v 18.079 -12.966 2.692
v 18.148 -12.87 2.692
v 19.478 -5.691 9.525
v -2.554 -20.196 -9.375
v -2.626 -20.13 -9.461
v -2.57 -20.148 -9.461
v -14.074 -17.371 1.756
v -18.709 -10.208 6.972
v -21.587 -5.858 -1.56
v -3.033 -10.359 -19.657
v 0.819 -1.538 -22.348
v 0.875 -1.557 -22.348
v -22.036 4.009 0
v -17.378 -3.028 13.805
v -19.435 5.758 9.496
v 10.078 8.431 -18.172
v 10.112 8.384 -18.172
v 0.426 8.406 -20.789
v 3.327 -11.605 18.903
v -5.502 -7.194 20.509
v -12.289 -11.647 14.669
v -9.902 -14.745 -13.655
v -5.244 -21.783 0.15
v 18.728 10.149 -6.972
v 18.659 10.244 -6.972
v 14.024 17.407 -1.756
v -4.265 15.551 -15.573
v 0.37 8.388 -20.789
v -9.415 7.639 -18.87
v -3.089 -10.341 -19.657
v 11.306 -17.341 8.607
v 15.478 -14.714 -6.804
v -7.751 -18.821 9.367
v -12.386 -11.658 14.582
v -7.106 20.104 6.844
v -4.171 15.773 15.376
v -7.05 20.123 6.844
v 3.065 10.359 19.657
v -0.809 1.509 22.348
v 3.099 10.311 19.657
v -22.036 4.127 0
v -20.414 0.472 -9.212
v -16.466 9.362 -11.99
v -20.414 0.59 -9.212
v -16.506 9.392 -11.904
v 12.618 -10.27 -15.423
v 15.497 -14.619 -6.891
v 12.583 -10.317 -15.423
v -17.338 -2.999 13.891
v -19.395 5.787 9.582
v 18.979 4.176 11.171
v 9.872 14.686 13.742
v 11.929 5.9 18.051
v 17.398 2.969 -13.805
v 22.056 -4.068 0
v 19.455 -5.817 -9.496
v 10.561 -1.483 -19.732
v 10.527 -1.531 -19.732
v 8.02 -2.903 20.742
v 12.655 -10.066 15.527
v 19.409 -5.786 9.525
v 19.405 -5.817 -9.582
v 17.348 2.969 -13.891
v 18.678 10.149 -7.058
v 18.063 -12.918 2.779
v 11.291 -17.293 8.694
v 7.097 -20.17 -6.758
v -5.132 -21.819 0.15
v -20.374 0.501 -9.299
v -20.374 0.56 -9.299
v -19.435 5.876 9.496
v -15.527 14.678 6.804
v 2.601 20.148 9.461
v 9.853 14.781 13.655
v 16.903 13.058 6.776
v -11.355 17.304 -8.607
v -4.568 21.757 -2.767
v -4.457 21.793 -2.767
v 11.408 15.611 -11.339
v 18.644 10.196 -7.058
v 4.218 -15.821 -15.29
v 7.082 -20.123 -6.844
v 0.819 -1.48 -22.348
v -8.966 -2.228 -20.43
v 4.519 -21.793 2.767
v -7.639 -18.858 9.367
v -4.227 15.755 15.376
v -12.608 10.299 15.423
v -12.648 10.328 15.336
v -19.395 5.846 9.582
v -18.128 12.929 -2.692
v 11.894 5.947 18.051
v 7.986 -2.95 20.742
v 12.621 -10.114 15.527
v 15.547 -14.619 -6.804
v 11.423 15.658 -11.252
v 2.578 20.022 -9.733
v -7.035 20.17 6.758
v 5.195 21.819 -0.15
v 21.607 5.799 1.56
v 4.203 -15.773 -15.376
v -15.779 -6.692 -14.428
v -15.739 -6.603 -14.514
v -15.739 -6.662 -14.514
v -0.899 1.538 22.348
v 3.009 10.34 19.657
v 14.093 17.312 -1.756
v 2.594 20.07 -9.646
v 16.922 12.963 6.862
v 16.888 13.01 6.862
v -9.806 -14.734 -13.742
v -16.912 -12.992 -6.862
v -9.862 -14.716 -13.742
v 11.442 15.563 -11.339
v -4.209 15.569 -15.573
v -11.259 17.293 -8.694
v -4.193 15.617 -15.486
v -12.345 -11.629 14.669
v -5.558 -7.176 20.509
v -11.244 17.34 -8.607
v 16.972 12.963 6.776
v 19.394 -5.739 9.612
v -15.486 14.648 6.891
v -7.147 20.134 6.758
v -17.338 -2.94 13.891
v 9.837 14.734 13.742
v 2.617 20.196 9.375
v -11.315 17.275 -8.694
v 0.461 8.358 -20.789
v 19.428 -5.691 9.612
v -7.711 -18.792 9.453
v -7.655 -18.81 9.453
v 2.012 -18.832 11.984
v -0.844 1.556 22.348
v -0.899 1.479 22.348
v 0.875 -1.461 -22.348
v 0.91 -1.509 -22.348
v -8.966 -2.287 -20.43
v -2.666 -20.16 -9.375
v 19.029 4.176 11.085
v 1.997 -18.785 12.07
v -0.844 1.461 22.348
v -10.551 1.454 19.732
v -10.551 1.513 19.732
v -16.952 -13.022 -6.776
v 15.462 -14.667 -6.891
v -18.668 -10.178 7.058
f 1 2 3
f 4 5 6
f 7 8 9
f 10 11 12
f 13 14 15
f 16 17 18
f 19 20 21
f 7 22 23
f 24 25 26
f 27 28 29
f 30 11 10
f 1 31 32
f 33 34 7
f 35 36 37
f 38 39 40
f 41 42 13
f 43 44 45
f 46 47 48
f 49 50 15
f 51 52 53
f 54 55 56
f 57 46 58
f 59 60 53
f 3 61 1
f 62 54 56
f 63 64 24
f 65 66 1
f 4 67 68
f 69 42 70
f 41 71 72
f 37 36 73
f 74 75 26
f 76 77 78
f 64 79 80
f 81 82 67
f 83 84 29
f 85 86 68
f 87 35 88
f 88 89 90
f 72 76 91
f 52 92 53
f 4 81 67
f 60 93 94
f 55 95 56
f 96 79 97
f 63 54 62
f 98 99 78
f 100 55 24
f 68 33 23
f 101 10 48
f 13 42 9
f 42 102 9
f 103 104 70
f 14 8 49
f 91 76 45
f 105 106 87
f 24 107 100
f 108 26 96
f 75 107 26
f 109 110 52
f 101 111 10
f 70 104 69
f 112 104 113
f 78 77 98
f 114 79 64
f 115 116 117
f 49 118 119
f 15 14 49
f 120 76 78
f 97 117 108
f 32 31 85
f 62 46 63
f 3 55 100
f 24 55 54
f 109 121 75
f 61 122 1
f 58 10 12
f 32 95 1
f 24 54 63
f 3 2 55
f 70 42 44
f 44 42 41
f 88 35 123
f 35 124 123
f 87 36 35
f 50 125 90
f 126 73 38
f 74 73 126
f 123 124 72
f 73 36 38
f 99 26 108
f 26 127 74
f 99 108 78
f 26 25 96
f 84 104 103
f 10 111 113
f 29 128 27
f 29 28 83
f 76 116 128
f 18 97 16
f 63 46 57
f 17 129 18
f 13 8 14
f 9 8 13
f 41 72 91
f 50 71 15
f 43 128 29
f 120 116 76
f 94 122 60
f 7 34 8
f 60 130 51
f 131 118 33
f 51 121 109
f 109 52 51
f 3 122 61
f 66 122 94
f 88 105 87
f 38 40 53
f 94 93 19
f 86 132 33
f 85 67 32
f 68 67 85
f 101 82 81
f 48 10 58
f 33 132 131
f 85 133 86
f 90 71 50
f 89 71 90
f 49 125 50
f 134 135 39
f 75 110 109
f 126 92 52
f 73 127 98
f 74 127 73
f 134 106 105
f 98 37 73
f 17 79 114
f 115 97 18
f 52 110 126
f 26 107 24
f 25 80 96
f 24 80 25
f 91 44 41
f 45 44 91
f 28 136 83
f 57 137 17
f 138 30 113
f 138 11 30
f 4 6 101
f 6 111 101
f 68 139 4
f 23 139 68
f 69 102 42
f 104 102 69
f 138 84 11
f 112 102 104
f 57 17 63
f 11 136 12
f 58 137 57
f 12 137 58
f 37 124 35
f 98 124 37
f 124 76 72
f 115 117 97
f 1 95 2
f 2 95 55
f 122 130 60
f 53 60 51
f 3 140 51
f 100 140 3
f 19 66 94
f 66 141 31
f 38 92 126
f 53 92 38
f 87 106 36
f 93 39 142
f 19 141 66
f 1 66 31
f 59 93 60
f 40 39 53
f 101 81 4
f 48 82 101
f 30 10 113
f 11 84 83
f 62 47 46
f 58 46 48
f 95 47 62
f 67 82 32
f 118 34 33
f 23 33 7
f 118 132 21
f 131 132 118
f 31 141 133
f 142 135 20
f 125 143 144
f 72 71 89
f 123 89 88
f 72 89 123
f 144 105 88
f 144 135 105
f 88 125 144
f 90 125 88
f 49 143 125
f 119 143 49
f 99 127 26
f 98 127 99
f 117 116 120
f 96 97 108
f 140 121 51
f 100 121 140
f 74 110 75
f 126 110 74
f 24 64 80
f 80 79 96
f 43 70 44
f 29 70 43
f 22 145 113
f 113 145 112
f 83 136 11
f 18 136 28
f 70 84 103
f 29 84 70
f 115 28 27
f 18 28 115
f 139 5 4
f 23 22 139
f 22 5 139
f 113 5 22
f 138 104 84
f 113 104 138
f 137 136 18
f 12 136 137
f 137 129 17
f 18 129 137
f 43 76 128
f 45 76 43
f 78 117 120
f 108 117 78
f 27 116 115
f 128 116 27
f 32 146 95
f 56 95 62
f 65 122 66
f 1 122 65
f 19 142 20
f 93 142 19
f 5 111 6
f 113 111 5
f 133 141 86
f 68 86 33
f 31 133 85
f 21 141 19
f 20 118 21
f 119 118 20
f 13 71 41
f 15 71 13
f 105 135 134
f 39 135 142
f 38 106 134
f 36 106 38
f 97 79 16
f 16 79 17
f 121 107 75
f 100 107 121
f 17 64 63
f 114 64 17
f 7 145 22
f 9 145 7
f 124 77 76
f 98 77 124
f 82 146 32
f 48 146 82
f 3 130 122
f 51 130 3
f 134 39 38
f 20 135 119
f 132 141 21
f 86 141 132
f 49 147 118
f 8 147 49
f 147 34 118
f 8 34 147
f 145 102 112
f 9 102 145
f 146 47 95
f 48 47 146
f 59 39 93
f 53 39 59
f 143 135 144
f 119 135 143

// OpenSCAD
// Auto-generated OpenSCAD file

    inner_points = 10*[[-1.3992742010651555, -1.7312409801594166, 0.1756227602822476], [2.150712303684815, 0.5799239281456414, 0.15601427458040756], [-1.6871507995909267, -1.2962966482820912, -0.6775773875078352], [1.8628357051590438, 1.0148682600229668, -0.6971858732096752], [-1.8627600686312442, -1.0148941578729198, 0.6971858732096752], [1.6872264361187264, 1.2962707504321382, 0.6775773875078352], [-2.150636667157015, -0.5799498259955944, -0.15601427458040756], [1.3993498375929552, 1.7312150823094636, -0.1756227602822476], [0.7066358711730568, -2.007528044985451, -0.6757738587827165], [1.5446740055009298, -1.4619360194133886, -0.6804027943441835], [0.41875927264728574, -1.5725837131081255, -1.5289740065727992], [1.2567974069751586, -1.0269916875360636, -1.5336029421342663], [-1.256721770447359, 1.0269657896861106, 1.5336029421342663], [-0.4186836361194859, 1.5725578152581725, 1.5289740065727992], [-1.5445983689731302, 1.4619101215634356, 0.6804027943441835], [-0.706560234645257, 2.0075021471354977, 0.6757738587827165], [-0.7670074964722945, -1.8762708457296007, 0.9366780489150633], [1.2605322394541718, -1.006617225412483, 1.5440108879813819], [-1.5698534097460979, -0.663274439847533, -1.4427729219722134], [0.041067398967589576, 0.8358365308480953, -2.070202936470276], [-1.2304933640383833, -1.159924023443104, 1.458241161842491], [0.7970463718880835, -0.2902704031259865, 2.0655740009088093], [-2.0333392773121863, 0.05307238243896379, -0.9212098090447859], [-0.42241846859849896, 1.5521833531345923, -1.5486398235428487], [0.3311527900043247, -1.1557855572128855, 1.8816536692283437], [1.8928984049503856, 0.4176227752958586, 1.108479669963875], [-0.9374872442498839, 0.7609655608608085, -1.87830413998972], [1.139227685444209, 1.5563218193648105, -1.1252273161569954], [-0.25851453042589057, -2.0100857577770195, -0.9374571796089897], [1.935497789113031, -0.5817072908384592, -0.9495758902406433], [-1.9354221525852313, 0.5816813929885062, 0.9495758902406433], [0.2585901669536904, 2.010059859927066, 0.9374571796089897], [1.1275223545764996, -1.7245448011376296, 0.8607185884943741], [0.08597503654455209, -0.15090142519135258, -2.2261885454165795], [-0.0858994000167523, 0.15087552734139947, 2.2261885454165795], [-1.1274467180487, 1.7245189032876767, -0.8607185884943741], [-0.51632842916032, -2.172386910626803, 0.015008215774477751], [2.1956199412617776, -0.40681402789380644, 2.8665634104529936e-05], [-0.9821225501407255, -1.4686321984351758, -1.3654986225563097], [1.7298258202813719, 0.2969406842978202, -1.380478172696683], [-1.7297501837535723, -0.29696658214777333, 1.380478172696683], [0.9821981866685253, 1.4686063005852228, 1.3654986225563097], [-2.1955443047339775, 0.40678813004385334, -2.8665634104529936e-05], [0.5164040656881198, 2.1723610127768493, -0.015008215774477751], [0.44882197243862765, -2.1698291978352344, 0.27669153660075085], [1.8047961576496763, -1.287042756468736, 0.2692017615305645], [-0.30484874706754905, -1.031130153766282, -1.9570154495201195], [1.0511254381434996, -0.148343712399784, -1.9645052245903059], [-1.0510498016157, 0.1483178145498309, 1.9645052245903059], [0.3049243835953489, 1.031104255916329, 1.9570154495201195], [-1.8047205211218766, 1.287016858618783, -0.2692017615305645], [-0.4487463359108278, 2.169803299985281, -0.27669153660075085], [0.19814290512665286, -1.8737131329380323, 1.1983613697413364], [1.9378060425273482, -0.5691151807435891, 0.9524940610175718], [-0.8925796066729214, -0.2257723951786395, -2.034289748936023], [1.006217800566537, 0.838394243639664, -1.808519615644003], [-0.5517929819005108, -0.7146396267455, 2.042268213736114], [1.1878701555001845, 0.5899583254489433, 1.7964009050123495], [-1.6425154937000854, 0.9333011110138931, -1.1903829049412455], [0.25628191353937335, 1.9974677498321964, -0.9646127716492254]];

    outer_points = 10*[[-0.5164382354895887, -2.172407098288803, 0.002631677908451424], [-0.7019200490835782, 2.0008793124287165, -0.6998987064490718], [-0.26494911520860553, -2.0008793124287165, 0.9551711474624607], [-0.4504309288025951, 2.172407098288803, 0.2526407631049375], [0.4504309288025951, -2.172407098288803, -0.2526407631049375], [0.26494911520860553, 2.0008793124287165, -0.9551711474624607], [0.7019200490835782, -2.0008793124287165, 0.6998987064490718], [0.5164382354895887, 2.172407098288803, -0.002631677908451424], [-2.1517131544864796, -0.5783535341827639, 0.14732843516422095], [-2.195499471084606, 0.4068257483226775, -0.018516491803209467], [-1.9002240342054968, -0.4068257483226775, 1.0998679047182303], [-1.9440103508036228, 0.5783535341827639, 0.9340229777507998], [1.9440103508036228, -0.5783535341827639, -0.9340229777507998], [1.9002240342054968, 0.4068257483226775, -1.0998679047182303], [2.195499471084606, -0.4068257483226775, 0.018516491803209467], [2.1517131544864796, 0.5783535341827639, -0.14732843516422095], [-0.7609587789890958, -1.8852406448327477, -0.9235136302458237], [-1.0379902450010878, 0.12928796078604404, -1.9727972151182085], [-0.05959224386819334, -1.4068746276021167, 1.7329802434476707], [0.027334764110777898, 0.8558913217193973, 2.062224729164167], [0.20591038530308792, -1.8852406448327477, -1.1787860712592126], [-0.07112108070890405, 0.12928796078604404, -2.2280696561315976], [0.9072769204239903, -1.4068746276021167, 1.4777078024342816], [0.9942039284029616, 0.8558913217193973, 1.8069522881507778], [-0.5383002015987535, -0.7343931152953243, -2.0388642972658477], [-0.4084137231953041, 1.5576732778601008, -1.5469066447740496], [0.5699842779375902, 0.021510689471939903, 2.1588708137918293], [0.24999334150112015, 2.0067388512568205, 0.9468740621441424], [-1.6917657169936344, -1.2896164233057401, 0.6788860118200353], [-1.8063997820896924, 1.2896164233057401, 0.2446983561575585], [1.8063997820896924, -1.2896164233057401, -0.2446983561575585], [1.6917657169936344, 1.2896164233057401, -0.6788860118200353], [-1.7205962598842752, -0.3102966796284031, -1.3890041247539981], [-0.8107000749068678, 0.3102966796284031, 2.057316051718203], [0.8107000749068678, -0.3102966796284031, -2.057316051718203], [1.7205962598842752, 0.3102966796284031, 1.3890041247539981], [-1.3982593911053605, -1.7328224578743556, -0.16812192650494262], [-1.539954888101224, 1.4552846703377222, -0.7048073838950354], [-0.9913414466899192, -1.4552846703377222, 1.37311931085924], [-1.1330369436857826, 1.7328224578743556, 0.8364338534691474], [1.1330369436857826, -1.7328224578743556, -0.8364338534691474], [0.9913414466899192, 1.4552846703377222, -1.37311931085924], [1.539954888101224, -1.4552846703377222, 0.7048073838950354], [1.3982593911053605, 1.7328224578743556, 0.16812192650494262], [-1.8582068285982056, -1.0215595687513794, -0.6996795031607568], [-1.9290545770961374, 0.5724939953546595, -0.9680222318558032], [-1.1997997639017814, -0.5724939953546595, 1.794101203757435], [-1.2706475123997132, 1.0215595687513794, 1.5257584750623887], [1.2706475123997132, -1.0215595687513794, -1.5257584750623887], [1.1997997639017814, 0.5724939953546595, -1.794101203757435], [1.9290545770961374, -0.5724939953546595, 0.9680222318558032], [1.8582068285982056, 1.0215595687513794, 0.6996795031607568], [-1.220906216481941, -1.1739777557097715, -1.455071206901638], [-1.2464485622129498, 1.0120786357691067, -1.5518153222200133], [-0.2680505610800553, -0.5240839526190542, 2.1539621363458656], [-0.43261267338206744, 1.5671542108423735, 1.5306671525083524], [0.34352095401701827, -1.1739777557097715, -1.868110692852454], [0.3179786082860096, 1.0120786357691067, -1.9648548081708292], [1.2963766094189042, -0.5240839526190542, 1.74092265039505], [1.131814497116892, 1.5671542108423735, 1.1176276665575364]];

    // Convex hull for inner set (I)
    module inner_hull() {
        hull() {
            for (p = inner_points) {
                translate(p) sphere(r=0.1);
            }
        }
    }

    // Convex hull for outer set (O) minus inner hull (O \ I)
    module outer_minus_inner() {
        difference() {
            hull() {
                for (p = outer_points) {
                    translate(p) sphere(r=0.1);
                }
            }
            inner_hull(); // Subtract inner hull
        }
    }

    // Convex hull for outer set (O) minus all translated inner hulls
    module outer_minus_AllTranslationInner() {
        difference() {
            hull() {
                for (p = outer_points) {
                    translate(p) sphere(r=0.1);
                }
            }
            hull() {
                translate([0,0,50]) inner_hull();
                translate([0,0,-50]) inner_hull();
            }; // Subtract translated inner hulls
        }
    }

    // Difference between outer_minus_inner and outer_minus_AllTranslationInner
    module outer_minus_inner_diff() {
        difference() {
            // Outer minus inner
            difference() {
                hull() {
                    for (p = outer_points) {
                        translate(p) sphere(r=0.1);
                    }
                }
                inner_hull();
            }

            // Subtract Outer minus AllTranslationInner
            difference() {
                hull() {
                    for (p = outer_points) {
                        translate(p) sphere(r=0.1);
                    }
                }
                hull() {
                    translate([0,0,50]) inner_hull();
                    translate([0,0,-50]) inner_hull();
                };
            }
        }
    }

    // Rendering all with colors applied
    color([1, 0, 0, 0.5]) inner_hull(); // Transparent red
    
